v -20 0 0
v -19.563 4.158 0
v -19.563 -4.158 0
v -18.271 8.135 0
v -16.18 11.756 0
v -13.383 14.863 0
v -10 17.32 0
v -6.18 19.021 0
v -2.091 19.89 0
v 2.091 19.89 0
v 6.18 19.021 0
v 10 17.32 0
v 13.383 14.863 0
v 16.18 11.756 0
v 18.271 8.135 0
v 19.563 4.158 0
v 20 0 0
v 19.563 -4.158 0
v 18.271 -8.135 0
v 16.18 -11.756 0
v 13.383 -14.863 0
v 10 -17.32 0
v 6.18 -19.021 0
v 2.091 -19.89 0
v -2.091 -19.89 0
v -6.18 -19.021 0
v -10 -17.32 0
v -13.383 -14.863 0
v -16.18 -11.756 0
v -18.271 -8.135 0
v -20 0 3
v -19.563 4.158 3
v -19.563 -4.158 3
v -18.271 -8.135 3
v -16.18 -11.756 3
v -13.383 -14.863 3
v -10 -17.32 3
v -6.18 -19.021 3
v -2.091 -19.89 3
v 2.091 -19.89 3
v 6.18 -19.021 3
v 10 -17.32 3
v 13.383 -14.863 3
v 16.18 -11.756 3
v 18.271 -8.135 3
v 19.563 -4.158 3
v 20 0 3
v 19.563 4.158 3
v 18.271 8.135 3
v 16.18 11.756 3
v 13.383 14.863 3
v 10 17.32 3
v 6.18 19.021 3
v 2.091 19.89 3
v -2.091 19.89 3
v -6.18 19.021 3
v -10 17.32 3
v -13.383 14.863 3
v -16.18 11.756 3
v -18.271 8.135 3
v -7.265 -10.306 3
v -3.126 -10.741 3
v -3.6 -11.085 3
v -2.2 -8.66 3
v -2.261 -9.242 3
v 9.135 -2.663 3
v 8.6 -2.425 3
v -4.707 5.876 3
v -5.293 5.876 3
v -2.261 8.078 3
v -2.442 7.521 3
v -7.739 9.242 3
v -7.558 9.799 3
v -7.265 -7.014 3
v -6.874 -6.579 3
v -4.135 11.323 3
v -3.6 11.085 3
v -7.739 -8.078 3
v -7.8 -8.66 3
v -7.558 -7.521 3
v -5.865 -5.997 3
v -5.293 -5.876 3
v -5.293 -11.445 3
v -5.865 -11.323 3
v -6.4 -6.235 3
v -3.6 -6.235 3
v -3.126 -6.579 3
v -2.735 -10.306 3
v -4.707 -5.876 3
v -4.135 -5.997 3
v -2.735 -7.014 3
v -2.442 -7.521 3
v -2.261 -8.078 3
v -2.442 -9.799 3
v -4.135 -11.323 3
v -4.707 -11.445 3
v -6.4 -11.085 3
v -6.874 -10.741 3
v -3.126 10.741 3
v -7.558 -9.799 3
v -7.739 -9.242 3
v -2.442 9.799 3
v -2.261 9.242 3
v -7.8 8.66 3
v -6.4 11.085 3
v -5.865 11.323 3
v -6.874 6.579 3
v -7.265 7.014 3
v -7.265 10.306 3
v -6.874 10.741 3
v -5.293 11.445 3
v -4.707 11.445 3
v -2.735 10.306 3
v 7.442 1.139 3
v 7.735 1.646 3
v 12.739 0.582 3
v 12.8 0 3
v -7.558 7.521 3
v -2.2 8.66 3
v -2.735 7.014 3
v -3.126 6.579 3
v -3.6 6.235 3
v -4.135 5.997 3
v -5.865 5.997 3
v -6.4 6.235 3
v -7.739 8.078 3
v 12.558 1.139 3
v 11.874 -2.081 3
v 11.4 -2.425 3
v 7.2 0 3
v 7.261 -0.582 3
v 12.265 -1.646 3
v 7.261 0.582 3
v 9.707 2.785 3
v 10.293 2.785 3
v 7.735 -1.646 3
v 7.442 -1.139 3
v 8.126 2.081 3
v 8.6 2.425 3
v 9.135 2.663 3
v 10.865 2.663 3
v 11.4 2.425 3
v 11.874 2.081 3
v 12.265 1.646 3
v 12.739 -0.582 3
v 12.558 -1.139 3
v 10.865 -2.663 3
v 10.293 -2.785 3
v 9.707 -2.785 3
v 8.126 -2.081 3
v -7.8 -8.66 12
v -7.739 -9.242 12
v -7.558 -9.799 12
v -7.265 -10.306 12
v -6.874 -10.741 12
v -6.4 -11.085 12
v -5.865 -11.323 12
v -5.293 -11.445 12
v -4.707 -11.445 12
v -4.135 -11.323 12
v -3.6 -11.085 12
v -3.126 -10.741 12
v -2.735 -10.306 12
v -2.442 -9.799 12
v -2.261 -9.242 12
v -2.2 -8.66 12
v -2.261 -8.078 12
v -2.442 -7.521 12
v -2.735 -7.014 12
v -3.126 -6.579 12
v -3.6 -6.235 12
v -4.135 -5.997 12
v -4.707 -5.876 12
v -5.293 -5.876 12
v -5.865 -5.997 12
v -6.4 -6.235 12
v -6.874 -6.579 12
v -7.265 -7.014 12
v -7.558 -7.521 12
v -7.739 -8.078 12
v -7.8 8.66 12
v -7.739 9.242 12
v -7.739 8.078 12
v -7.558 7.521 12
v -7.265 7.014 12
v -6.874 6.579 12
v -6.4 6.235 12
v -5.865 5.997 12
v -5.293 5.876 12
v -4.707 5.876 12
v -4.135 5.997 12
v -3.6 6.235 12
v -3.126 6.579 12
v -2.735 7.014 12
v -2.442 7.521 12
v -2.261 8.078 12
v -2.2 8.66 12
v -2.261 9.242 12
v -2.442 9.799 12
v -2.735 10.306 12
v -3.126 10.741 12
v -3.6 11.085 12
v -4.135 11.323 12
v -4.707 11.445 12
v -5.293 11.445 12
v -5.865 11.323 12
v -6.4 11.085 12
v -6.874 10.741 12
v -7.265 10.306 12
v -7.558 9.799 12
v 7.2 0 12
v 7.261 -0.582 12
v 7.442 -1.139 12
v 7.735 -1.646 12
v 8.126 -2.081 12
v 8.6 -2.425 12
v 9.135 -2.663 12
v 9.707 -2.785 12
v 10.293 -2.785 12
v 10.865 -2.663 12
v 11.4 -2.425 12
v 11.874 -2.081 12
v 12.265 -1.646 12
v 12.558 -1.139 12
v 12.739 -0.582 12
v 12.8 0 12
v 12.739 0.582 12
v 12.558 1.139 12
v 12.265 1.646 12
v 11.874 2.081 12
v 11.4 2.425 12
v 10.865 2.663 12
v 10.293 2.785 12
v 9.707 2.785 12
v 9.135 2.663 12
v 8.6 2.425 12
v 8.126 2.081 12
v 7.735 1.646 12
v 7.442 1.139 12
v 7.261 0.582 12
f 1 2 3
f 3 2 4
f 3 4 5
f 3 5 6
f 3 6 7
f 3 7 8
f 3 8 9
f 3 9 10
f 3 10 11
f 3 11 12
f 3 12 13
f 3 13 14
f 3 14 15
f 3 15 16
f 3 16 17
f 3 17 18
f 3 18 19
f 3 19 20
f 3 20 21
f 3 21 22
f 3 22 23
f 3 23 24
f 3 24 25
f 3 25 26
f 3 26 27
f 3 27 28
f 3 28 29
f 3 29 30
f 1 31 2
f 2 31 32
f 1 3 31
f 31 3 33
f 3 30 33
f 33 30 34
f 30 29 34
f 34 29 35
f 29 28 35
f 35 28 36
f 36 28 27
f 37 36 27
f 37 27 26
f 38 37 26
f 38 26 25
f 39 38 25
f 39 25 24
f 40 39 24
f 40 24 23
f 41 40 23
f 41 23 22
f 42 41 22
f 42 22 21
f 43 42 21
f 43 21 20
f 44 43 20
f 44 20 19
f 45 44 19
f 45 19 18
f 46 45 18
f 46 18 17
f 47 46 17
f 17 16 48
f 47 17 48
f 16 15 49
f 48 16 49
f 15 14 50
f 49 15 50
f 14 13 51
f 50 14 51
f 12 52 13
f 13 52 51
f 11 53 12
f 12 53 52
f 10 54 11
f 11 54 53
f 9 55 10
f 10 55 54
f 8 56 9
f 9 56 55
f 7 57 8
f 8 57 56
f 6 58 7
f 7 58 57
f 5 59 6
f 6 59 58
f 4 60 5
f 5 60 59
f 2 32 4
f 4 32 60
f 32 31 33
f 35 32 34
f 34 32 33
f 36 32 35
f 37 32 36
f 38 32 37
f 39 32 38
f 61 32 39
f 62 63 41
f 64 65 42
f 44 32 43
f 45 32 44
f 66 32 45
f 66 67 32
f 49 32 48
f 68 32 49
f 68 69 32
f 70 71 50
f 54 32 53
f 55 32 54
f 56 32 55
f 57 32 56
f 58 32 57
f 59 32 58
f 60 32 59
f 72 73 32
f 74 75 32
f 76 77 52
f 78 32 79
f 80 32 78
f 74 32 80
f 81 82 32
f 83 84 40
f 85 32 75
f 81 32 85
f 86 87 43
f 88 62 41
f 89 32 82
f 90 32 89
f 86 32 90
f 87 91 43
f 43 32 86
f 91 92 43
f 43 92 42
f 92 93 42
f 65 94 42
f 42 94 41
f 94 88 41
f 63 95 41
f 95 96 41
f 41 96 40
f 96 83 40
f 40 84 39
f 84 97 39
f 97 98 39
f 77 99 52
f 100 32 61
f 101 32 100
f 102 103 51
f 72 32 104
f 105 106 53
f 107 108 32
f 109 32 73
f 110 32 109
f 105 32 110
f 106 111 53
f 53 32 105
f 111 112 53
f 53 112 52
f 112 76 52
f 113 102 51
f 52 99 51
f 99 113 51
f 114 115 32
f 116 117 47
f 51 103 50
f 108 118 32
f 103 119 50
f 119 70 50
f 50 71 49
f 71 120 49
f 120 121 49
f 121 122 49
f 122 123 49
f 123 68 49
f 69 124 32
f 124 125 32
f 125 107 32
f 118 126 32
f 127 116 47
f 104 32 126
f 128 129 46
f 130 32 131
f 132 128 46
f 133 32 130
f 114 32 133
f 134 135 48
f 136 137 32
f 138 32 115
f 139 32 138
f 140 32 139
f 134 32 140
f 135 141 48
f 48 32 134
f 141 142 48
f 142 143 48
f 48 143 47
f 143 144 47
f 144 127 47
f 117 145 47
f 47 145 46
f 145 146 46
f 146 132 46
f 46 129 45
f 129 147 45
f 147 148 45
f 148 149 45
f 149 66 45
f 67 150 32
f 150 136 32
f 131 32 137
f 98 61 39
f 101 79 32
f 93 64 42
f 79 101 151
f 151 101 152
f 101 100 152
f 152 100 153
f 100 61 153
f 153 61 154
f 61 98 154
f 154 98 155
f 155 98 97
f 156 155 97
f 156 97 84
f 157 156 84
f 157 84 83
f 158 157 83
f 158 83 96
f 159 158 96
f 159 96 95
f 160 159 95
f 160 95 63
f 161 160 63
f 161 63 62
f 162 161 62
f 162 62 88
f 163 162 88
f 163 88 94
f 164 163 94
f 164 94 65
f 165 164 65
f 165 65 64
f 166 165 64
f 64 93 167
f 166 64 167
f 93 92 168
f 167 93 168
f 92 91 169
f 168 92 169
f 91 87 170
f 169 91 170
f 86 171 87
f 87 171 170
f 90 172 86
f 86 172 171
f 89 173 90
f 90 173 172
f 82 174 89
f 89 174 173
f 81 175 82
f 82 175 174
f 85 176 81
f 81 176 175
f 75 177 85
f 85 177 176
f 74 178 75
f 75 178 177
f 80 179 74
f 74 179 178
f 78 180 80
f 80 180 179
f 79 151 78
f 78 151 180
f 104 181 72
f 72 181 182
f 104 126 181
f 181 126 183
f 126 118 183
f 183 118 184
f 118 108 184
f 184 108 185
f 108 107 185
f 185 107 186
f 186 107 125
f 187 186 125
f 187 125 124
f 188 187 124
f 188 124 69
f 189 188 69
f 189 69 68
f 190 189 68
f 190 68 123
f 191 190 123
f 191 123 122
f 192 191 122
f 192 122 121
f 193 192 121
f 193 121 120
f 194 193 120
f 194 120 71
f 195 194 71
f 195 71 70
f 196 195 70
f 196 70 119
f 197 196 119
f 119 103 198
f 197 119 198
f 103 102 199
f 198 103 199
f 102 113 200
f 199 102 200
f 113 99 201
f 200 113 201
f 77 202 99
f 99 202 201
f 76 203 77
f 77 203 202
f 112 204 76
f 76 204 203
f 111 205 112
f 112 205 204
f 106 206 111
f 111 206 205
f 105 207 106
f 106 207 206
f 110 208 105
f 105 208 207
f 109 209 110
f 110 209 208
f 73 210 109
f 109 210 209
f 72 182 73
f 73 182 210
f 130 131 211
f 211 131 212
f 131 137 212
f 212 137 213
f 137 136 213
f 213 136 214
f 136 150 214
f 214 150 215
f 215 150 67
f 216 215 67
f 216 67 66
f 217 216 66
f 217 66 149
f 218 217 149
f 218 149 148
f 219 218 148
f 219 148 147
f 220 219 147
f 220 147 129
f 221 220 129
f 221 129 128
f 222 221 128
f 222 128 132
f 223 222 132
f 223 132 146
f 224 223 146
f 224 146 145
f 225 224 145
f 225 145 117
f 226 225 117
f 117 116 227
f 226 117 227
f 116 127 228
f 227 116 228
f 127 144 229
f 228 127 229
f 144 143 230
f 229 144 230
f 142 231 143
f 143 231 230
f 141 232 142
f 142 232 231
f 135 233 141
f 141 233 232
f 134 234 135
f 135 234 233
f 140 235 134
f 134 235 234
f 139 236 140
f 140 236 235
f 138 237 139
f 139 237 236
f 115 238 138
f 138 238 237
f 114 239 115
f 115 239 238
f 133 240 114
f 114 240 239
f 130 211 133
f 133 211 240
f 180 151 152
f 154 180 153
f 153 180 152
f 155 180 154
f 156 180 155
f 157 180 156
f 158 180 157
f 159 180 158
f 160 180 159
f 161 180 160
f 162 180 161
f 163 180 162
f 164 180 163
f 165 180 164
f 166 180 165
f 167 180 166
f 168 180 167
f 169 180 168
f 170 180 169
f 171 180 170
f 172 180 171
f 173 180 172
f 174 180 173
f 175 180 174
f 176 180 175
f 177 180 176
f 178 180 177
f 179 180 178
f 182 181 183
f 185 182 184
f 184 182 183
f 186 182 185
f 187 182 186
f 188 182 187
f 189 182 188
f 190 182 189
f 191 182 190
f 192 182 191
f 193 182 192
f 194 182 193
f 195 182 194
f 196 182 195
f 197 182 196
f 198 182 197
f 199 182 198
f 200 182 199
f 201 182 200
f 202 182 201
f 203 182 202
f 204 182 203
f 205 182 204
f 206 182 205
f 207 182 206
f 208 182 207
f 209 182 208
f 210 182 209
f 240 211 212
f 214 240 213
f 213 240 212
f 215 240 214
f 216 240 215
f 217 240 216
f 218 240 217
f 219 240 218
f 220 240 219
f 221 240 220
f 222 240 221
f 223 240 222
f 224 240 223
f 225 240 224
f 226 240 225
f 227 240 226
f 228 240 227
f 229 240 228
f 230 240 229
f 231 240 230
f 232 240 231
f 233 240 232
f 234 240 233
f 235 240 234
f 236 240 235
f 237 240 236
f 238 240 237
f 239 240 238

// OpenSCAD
cylinder(r=20, h=3);
module male() {
translate([10,0,2]){
	cylinder(r=2.8, h=10, $fs=0.3);
}
}
male();
rotate(120, [0,0,1]){male();}
rotate(240, [0,0,1]){male();}
